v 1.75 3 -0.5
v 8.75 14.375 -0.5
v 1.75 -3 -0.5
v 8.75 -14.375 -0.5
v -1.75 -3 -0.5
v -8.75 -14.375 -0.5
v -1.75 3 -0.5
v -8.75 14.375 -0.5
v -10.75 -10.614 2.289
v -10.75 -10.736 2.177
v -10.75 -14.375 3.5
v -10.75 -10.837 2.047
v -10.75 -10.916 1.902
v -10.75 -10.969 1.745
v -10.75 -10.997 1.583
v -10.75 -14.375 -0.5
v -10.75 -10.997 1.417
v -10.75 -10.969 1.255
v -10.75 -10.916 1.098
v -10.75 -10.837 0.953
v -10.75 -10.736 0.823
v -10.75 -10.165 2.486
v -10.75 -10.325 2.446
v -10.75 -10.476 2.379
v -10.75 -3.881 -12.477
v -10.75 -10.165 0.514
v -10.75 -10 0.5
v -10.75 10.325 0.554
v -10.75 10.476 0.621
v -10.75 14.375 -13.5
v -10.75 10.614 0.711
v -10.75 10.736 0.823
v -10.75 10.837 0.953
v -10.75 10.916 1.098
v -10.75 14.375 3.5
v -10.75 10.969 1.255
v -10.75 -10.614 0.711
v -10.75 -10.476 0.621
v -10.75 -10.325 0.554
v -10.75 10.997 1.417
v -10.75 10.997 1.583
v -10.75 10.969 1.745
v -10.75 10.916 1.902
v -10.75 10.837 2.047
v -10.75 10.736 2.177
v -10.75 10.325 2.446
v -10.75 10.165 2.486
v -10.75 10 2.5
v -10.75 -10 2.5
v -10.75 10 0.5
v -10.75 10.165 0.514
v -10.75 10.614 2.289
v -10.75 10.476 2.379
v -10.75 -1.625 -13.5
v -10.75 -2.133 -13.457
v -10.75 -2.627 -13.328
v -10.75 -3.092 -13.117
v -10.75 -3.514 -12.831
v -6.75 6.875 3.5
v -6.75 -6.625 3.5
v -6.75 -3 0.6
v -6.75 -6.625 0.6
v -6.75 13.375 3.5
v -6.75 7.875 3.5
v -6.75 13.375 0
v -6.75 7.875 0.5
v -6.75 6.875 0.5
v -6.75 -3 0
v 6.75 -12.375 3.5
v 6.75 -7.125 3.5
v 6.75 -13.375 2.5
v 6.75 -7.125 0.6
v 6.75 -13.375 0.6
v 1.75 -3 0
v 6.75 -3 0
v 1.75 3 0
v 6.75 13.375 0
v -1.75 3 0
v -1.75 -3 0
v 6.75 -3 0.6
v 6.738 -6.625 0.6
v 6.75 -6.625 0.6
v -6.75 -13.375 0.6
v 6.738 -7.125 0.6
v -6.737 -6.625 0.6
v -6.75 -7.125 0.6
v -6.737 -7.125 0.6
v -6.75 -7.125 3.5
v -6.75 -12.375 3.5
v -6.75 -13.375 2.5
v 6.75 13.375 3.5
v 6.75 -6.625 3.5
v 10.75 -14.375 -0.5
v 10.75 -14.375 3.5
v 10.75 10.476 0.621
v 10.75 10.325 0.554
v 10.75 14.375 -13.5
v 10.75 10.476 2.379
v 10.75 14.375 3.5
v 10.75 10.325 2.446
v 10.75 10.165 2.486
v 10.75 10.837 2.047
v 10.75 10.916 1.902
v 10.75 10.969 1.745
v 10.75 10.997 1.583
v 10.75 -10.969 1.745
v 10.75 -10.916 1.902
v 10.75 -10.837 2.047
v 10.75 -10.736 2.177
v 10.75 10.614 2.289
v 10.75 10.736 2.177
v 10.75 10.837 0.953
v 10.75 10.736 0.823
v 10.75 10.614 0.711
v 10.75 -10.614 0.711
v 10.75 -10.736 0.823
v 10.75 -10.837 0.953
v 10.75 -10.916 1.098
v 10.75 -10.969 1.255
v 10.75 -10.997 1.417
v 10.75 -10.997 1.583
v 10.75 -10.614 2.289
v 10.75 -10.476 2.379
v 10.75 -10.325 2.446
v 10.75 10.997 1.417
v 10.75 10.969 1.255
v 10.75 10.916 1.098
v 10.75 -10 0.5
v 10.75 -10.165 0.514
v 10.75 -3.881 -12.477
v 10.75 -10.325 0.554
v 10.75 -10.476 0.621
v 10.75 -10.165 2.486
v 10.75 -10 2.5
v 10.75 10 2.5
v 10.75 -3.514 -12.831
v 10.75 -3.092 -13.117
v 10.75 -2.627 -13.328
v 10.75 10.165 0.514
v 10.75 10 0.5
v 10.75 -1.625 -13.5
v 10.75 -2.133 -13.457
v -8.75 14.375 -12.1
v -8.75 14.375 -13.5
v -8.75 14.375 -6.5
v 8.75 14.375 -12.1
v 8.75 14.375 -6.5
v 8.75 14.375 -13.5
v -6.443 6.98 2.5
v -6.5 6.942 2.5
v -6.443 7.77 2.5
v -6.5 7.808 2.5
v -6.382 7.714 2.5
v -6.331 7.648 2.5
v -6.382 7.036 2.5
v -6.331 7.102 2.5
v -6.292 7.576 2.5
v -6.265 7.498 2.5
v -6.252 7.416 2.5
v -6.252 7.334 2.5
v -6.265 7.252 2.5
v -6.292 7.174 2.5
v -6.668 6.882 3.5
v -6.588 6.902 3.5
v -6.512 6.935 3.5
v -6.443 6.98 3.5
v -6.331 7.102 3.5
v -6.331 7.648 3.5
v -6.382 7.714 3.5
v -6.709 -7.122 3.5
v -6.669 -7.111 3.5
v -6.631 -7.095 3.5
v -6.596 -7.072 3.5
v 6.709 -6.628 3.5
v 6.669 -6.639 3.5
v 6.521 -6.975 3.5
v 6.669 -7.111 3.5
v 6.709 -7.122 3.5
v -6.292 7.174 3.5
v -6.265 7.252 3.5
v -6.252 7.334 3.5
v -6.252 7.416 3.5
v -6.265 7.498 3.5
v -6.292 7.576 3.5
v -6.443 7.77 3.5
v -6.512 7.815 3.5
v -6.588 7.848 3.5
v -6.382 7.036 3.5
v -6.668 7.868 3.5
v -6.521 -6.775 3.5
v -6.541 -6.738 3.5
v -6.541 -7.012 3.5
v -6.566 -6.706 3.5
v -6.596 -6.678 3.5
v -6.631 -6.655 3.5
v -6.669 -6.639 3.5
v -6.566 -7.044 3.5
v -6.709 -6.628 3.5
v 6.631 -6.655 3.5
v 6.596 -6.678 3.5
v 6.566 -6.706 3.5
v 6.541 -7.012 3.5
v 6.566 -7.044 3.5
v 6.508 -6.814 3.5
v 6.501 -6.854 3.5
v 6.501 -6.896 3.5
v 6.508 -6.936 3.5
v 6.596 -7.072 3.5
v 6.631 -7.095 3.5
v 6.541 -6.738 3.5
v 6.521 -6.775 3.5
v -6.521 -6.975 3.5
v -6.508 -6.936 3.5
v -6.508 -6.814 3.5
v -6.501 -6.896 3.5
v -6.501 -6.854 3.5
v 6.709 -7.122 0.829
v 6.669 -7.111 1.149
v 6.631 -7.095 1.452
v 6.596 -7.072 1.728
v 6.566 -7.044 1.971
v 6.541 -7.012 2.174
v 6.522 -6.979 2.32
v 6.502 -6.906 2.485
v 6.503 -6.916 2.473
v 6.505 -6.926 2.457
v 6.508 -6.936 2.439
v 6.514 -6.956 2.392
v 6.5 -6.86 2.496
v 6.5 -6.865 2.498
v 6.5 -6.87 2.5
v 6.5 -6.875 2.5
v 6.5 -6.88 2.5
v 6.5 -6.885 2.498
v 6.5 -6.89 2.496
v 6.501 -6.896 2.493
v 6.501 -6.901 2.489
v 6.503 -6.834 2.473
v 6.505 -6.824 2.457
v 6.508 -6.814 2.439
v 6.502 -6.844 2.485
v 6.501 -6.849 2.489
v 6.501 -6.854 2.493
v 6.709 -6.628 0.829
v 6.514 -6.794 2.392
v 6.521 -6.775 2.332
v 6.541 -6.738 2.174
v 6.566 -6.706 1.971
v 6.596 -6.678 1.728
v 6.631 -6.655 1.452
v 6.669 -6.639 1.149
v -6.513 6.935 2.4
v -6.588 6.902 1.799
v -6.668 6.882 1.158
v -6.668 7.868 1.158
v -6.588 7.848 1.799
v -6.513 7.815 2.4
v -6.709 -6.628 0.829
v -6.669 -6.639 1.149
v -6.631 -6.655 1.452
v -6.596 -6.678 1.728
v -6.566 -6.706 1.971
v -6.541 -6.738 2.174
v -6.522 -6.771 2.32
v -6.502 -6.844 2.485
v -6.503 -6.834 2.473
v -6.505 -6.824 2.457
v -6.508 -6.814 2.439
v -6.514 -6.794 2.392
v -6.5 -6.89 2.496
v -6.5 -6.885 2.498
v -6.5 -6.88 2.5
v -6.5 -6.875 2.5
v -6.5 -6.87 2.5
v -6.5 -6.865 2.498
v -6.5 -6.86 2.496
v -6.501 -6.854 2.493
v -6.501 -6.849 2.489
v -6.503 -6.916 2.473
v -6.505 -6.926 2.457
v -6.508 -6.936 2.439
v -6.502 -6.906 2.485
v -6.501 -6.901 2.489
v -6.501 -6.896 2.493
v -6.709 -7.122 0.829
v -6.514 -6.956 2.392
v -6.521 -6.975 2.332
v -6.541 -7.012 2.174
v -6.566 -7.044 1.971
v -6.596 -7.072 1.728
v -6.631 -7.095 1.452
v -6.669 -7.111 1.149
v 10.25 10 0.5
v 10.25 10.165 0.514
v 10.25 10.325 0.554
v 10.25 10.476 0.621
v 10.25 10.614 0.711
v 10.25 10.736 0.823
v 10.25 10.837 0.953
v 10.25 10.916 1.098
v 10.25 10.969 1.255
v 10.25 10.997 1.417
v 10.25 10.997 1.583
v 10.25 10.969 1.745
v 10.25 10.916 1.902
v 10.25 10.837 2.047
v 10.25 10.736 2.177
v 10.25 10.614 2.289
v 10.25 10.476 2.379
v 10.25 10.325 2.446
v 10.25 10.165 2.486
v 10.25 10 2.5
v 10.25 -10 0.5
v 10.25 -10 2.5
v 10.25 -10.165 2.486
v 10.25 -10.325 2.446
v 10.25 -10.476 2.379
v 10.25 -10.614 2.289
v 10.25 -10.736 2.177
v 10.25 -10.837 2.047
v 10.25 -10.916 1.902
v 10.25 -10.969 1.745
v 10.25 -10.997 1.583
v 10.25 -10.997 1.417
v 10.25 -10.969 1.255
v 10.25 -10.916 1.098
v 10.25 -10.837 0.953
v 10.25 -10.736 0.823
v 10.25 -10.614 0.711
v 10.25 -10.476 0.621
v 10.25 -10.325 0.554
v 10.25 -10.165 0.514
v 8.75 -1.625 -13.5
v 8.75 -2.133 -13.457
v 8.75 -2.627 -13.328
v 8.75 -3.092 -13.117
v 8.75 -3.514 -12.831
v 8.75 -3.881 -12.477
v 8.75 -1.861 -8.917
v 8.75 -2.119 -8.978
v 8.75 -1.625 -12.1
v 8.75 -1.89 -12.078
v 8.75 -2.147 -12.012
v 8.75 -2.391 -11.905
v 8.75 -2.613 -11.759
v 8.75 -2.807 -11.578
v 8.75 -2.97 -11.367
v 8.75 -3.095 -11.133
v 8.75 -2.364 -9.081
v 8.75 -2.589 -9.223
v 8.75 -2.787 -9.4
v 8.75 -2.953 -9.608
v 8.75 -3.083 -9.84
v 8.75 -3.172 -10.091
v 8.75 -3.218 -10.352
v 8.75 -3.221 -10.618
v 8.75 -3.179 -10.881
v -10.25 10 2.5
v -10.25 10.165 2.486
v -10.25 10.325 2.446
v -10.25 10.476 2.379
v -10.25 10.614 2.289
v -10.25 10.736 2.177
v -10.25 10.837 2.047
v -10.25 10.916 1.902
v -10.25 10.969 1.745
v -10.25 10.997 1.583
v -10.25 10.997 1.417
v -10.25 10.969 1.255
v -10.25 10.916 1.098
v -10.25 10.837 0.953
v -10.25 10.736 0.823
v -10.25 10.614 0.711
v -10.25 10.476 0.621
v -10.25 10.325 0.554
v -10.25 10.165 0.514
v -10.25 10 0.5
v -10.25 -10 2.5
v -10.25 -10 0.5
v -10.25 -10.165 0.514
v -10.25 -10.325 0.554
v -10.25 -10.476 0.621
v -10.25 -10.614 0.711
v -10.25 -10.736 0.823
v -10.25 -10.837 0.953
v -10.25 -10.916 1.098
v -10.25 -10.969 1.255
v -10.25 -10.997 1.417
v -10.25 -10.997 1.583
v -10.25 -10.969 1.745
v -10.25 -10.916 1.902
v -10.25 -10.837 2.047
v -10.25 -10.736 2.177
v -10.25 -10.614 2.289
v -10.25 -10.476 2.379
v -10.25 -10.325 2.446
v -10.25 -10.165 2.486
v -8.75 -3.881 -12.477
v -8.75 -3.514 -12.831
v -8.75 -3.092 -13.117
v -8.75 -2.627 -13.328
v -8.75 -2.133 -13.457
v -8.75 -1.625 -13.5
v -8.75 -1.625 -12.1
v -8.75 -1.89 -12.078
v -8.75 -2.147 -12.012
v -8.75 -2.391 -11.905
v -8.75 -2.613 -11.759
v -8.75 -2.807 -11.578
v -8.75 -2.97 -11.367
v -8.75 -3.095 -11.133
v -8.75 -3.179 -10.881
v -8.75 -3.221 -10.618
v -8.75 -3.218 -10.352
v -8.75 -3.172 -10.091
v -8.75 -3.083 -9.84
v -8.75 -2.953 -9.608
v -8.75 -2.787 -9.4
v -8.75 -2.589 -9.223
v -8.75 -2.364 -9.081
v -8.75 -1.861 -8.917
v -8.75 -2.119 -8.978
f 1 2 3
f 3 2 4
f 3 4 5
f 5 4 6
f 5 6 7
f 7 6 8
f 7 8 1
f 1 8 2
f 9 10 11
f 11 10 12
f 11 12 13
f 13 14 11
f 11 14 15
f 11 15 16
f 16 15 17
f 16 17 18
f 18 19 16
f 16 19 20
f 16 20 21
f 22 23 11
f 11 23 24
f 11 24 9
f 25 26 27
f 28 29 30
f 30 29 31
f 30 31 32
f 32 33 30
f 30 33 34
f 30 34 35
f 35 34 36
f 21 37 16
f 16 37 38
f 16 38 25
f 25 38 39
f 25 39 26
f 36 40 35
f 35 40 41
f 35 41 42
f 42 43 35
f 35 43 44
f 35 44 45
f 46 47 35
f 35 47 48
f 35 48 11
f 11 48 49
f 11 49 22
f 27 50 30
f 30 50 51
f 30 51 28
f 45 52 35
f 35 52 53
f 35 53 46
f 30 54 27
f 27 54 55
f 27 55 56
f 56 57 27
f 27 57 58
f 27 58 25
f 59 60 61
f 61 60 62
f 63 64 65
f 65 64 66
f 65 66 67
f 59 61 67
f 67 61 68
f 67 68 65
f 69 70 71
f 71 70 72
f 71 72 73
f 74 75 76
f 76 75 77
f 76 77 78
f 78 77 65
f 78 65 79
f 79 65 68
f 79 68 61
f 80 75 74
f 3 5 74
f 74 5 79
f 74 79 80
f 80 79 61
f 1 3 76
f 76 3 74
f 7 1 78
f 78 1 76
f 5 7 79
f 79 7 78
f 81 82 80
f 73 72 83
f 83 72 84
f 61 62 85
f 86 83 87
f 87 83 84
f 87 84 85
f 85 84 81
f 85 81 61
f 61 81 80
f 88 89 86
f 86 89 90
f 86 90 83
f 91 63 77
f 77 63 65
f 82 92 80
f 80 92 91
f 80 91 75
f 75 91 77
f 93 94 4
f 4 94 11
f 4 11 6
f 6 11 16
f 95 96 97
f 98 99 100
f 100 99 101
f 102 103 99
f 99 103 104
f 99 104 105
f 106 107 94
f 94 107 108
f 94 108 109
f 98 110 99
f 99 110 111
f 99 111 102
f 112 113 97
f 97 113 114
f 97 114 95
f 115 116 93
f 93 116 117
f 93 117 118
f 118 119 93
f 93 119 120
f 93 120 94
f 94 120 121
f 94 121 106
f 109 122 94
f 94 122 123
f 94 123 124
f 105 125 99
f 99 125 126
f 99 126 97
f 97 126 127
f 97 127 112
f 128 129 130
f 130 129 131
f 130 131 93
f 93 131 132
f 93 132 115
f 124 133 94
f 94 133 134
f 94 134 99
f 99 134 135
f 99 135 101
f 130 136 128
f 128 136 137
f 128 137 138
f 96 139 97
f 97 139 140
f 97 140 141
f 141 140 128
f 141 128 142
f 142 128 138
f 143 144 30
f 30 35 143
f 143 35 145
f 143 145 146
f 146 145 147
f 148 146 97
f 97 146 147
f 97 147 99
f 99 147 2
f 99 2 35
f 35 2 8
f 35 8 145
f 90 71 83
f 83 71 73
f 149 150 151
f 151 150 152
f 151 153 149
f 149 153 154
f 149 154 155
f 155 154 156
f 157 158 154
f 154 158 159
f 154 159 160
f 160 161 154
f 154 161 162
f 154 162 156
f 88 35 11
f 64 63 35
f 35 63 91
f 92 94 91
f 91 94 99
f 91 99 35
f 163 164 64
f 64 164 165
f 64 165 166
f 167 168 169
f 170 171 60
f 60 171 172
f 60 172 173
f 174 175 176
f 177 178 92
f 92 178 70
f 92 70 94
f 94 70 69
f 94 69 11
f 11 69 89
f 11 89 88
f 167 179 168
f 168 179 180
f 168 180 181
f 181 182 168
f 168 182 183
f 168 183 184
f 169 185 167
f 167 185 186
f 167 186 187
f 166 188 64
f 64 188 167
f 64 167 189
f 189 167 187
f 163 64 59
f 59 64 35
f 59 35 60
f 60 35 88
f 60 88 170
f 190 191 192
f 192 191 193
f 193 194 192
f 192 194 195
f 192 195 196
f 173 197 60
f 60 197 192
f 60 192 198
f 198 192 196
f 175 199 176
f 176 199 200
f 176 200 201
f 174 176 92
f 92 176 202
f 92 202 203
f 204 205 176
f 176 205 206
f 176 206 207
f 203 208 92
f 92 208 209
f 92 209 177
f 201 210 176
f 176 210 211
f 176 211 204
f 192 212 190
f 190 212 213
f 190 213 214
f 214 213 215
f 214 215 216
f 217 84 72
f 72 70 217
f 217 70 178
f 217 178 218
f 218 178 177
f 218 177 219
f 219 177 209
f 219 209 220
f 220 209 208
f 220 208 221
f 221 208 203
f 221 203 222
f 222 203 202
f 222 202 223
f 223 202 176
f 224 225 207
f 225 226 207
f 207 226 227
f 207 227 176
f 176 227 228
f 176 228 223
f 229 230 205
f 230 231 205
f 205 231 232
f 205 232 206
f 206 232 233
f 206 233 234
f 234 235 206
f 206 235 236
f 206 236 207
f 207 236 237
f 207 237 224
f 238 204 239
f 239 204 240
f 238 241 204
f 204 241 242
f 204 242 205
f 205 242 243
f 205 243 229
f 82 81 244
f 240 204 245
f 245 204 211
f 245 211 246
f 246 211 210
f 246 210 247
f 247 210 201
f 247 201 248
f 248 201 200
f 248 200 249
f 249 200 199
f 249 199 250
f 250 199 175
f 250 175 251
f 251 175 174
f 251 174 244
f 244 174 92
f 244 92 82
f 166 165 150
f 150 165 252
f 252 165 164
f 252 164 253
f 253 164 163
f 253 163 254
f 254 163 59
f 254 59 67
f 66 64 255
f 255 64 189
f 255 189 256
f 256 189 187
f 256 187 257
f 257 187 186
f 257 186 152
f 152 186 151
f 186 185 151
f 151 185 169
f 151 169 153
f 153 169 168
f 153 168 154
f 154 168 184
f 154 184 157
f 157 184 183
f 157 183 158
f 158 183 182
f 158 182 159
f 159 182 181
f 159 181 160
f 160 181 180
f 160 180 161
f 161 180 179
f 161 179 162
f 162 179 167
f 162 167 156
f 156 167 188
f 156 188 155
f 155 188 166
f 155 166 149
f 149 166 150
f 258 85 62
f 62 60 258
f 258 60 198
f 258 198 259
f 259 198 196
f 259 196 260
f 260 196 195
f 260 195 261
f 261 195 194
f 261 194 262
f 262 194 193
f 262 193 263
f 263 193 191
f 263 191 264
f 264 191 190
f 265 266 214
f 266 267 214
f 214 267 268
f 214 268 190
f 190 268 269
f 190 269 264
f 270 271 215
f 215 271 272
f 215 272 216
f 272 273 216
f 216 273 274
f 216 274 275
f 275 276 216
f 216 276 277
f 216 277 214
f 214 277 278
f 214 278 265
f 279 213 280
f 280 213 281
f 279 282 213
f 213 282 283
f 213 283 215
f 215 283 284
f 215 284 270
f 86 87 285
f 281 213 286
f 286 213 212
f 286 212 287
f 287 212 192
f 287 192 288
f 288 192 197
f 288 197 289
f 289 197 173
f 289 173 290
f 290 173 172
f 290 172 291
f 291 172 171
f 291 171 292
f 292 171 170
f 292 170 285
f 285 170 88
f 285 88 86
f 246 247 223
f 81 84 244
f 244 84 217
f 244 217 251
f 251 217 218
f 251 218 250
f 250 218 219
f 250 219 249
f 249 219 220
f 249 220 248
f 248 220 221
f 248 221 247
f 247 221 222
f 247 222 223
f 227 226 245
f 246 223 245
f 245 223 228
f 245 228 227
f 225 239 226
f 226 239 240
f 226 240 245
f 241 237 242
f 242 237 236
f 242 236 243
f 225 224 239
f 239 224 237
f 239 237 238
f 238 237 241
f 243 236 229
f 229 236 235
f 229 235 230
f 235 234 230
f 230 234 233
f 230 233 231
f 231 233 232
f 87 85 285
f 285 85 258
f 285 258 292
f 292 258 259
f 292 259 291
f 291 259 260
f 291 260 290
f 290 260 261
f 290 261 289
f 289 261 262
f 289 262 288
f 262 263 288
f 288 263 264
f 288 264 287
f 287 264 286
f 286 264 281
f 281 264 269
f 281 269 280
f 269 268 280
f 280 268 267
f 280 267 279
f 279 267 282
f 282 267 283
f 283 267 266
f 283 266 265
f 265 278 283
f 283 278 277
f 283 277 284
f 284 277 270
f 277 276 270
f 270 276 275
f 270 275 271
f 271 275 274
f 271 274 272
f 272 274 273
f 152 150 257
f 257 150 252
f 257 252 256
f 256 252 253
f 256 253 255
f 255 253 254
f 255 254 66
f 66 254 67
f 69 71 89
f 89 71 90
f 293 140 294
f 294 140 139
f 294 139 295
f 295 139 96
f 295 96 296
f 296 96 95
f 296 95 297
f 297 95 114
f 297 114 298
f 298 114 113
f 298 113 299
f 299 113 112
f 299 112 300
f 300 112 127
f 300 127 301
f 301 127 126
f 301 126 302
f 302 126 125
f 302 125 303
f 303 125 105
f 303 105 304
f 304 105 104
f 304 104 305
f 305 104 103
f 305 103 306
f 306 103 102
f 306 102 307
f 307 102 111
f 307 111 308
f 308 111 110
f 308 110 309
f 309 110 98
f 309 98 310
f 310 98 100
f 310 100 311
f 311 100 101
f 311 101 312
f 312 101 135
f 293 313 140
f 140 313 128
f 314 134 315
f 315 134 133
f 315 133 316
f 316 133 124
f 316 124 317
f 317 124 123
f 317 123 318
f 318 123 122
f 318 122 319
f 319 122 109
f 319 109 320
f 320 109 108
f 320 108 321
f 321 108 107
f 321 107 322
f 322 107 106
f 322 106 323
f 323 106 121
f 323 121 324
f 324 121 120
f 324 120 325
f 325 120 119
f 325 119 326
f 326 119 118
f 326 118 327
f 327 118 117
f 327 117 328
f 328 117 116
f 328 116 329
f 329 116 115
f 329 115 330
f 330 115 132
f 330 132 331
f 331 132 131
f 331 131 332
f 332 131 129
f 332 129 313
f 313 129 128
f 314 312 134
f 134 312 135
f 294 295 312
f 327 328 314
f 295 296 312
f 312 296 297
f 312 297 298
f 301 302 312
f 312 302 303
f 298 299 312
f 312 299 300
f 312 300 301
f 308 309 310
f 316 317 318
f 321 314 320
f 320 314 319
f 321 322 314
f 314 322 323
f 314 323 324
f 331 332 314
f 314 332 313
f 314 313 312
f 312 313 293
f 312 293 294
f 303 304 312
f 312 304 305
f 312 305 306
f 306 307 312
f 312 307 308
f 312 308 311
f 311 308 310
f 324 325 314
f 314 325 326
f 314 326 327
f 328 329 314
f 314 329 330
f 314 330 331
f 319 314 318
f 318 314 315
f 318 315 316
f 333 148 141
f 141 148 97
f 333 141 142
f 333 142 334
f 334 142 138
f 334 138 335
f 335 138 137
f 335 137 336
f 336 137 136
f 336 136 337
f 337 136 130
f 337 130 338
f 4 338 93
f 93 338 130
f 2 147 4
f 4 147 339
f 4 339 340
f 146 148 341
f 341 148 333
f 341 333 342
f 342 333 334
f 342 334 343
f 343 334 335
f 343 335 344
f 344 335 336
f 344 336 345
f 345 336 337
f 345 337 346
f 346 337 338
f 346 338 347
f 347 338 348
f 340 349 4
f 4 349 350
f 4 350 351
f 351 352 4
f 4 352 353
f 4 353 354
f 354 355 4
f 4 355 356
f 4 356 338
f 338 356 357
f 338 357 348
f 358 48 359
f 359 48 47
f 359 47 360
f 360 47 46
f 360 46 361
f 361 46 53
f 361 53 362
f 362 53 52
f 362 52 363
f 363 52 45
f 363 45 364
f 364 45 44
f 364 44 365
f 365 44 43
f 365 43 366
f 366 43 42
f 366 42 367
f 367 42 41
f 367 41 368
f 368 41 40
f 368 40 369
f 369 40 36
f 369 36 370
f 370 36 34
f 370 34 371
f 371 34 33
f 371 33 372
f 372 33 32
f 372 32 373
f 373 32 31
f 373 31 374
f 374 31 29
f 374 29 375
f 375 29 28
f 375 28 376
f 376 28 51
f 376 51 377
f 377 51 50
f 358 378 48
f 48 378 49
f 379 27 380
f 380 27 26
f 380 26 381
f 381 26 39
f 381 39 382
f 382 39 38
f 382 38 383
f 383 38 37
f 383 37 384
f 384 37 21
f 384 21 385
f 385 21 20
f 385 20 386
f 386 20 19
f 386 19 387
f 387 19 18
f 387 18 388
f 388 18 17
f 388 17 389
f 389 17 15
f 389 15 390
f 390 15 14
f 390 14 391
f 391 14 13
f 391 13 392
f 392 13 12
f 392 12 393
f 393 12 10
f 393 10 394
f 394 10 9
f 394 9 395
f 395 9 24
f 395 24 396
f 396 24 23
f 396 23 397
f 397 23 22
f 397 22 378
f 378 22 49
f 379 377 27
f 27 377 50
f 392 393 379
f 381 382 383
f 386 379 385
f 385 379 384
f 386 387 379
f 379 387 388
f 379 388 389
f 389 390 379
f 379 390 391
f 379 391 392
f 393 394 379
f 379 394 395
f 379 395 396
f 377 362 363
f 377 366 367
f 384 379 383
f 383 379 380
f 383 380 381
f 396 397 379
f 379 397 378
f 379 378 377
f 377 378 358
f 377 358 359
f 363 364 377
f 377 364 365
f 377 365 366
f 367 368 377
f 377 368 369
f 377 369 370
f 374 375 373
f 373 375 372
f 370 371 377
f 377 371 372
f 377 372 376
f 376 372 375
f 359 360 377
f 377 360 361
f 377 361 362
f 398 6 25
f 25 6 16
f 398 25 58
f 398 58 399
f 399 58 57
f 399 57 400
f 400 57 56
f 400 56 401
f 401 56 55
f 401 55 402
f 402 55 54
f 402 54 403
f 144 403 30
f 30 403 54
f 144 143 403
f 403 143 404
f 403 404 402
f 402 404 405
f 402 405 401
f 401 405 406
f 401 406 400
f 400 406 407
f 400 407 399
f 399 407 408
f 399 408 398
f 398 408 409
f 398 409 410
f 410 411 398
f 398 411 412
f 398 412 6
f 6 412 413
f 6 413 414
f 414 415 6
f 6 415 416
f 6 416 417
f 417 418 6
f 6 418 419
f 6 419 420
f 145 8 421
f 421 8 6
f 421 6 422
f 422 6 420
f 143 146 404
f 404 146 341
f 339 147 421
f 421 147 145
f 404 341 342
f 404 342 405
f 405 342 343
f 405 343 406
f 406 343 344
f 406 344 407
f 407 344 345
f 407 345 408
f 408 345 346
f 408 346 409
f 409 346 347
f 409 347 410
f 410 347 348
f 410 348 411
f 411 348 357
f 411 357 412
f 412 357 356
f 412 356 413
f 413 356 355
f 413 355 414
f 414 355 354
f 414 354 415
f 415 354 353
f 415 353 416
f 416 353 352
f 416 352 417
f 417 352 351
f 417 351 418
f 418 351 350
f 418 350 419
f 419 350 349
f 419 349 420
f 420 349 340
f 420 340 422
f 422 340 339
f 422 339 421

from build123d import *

# Parameters (mm, degrees)
BOSS_EXTRUDE2_DEPTH = 0.5
BOSS_EXTRUDE3_DEPTH = 0.6
SKETCH4_W           = 21.5
SKETCH4_H           = 28.75
SKETCH4_W_2         = 13.5
SKETCH4_H_2         = 26.75
BOSS_EXTRUDE4_DEPTH = 3
SKETCH5_W           = 21.5
SKETCH5_H           = 28.75
BOSS_EXTRUDE5_DEPTH = 1
CHAMFER1_SIZE       = 0.25
CHAMFER1_SIZE_2     = 2
CHAMFER2_SIZE       = 2
CUT_EXTRUDE3_DEPTH  = 0.5
BOSS_EXTRUDE6_DEPTH = 2
BOSS_EXTRUDE8_START = -2
BOSS_EXTRUDE8_DEPTH = 17.5


with BuildPart() as part:
    # Sketch2 → Boss-Extrude2 (new body)
    with BuildSketch(Plane.XY):
        Polygon((-6.75, 13.375), (-6.75, -3), (-1.75, -3), (-1.75, 3), (1.75, 3), (1.75, -3), (6.75, -3), (6.75, 13.375), align=None)
        Polygon((-6.75, -3), (-6.75, -13.375), (6.75, -13.375), (6.75, -3), (1.75, -3), (-1.75, -3), align=None)
    extrude(amount=-BOSS_EXTRUDE2_DEPTH)

    # Sketch2<5> → Boss-Extrude3 (add)
    with BuildSketch(Plane.XY):
        Polygon((-6.75, -3), (-6.75, -13.375), (6.75, -13.375), (6.75, -3), (1.75, -3), (-1.75, -3), align=None)
    extrude(amount=BOSS_EXTRUDE3_DEPTH)

    # Sketch4 → Boss-Extrude4 (add)
    with BuildSketch(Plane(origin=(0, 0, -0.5), x_dir=(-1, 0, 0), z_dir=(0, 0, -1))):
        Rectangle(SKETCH4_W, SKETCH4_H)
        Rectangle(SKETCH4_W_2, SKETCH4_H_2, mode=Mode.SUBTRACT)
    extrude(amount=-BOSS_EXTRUDE4_DEPTH)

    # Sketch5 → Boss-Extrude5 (add)
    with BuildSketch(Plane.XY.offset(2.5)):
        Rectangle(SKETCH5_W, SKETCH5_H)
        with BuildLine():
            Line((-6.75, -7.125), (-6.75, -11.375))
            Line((-6.75, -11.375), (6.75, -11.375))
            Line((6.75, -11.375), (6.75, -7.125))
            ThreePointArc((6.75, -7.125), (6.5, -6.875), (6.75, -6.625))
            Line((6.75, -6.625), (6.75, 13.375))
            Line((6.75, 13.375), (-6.75, 13.375))
            Line((-6.75, 13.375), (-6.75, 7.875))
            ThreePointArc((-6.75, 7.875), (-6.25, 7.375), (-6.75, 6.875))
            Line((-6.75, 6.875), (-6.75, -6.625))
            ThreePointArc((-6.75, -6.625), (-6.5, -6.875), (-6.75, -7.125))
        make_face(mode=Mode.SUBTRACT)
    extrude(amount=BOSS_EXTRUDE5_DEPTH)

    # Chamfer1
    # the kernel refuses this chamfer: 2, 0.25 mm, written as the material it adds along each edge
    with BuildSketch(Plane(origin=(6.75, -1.426485236, 2.5), x_dir=(-0.9563912737708581, 0, 0.29208856782653414), z_dir=(0, -1, 0))) as chamfer1_piece_1_section:
        Polygon((CHAMFER1_SIZE * 0.956391273771, CHAMFER1_SIZE * 0.292088567827), (-CHAMFER1_SIZE_2 * 0.292088567827, CHAMFER1_SIZE_2 * 0.956391273771), (0, 0), align=None)
    chamfer1_piece_1 = extrude(amount=10.897029528, mode=Mode.PRIVATE)
    chamfer1_piece_1 = chamfer1_piece_1 & Plane(origin=(6.75, -6.875, 1.806445447), x_dir=(0, -1, 0), z_dir=(0, 0, -1)) * Cylinder(0.25, 30, mode=Mode.PRIVATE)
    add(chamfer1_piece_1)
    with BuildSketch(Plane(origin=(-6.75, -12.323514764, 2.5), x_dir=(-0.0047719296843702665, 0, -0.9999886142787264), z_dir=(0, 1, 0))) as chamfer1_piece_2_section:
        Polygon((CHAMFER1_SIZE_2 * 0.999988614279, -CHAMFER1_SIZE_2 * 0.00477192968437), (-CHAMFER1_SIZE * 0.00477192968437, -CHAMFER1_SIZE * 0.999988614279), (0, 0), align=None)
    chamfer1_piece_2 = extrude(amount=10.897029528, mode=Mode.PRIVATE)
    chamfer1_piece_2 = chamfer1_piece_2 & Plane(origin=(-6.75, -6.875, 1.806445447), x_dir=(0, 1, 0), z_dir=(0, 0, -1)) * Cylinder(0.25, 30, mode=Mode.PRIVATE)
    add(chamfer1_piece_2)
    with BuildSketch(Plane(origin=(-6.75, 1.676485236, 2.5), x_dir=(0.9563912737708581, 0, 0.29208856782653414), z_dir=(0, 1, 0))) as chamfer1_piece_3_section:
        Polygon((CHAMFER1_SIZE * 0.956391273771, CHAMFER1_SIZE * 0.292088567827), (-CHAMFER1_SIZE_2 * 0.292088567827, CHAMFER1_SIZE_2 * 0.956391273771), (0, 0), align=None)
    chamfer1_piece_3 = extrude(amount=11.397029528, mode=Mode.PRIVATE)
    chamfer1_piece_3 = chamfer1_piece_3 & Plane(origin=(-6.75, 7.375, 1.827435812), x_dir=(0, 1, 0), z_dir=(0, 0, -1)) * Cylinder(0.5, 31, mode=Mode.PRIVATE)
    add(chamfer1_piece_3)

    # Chamfer2
    # the kernel refuses this chamfer: 2 mm, written as the material it takes off along each edge
    with BuildSketch(Plane(origin=(-6.75, -11.375, 2.5), x_dir=(0, -0.9996219169112968, -0.02749587661058627), z_dir=(1, 0, 0))) as chamfer2_piece_1_section:
        Polygon((CHAMFER2_SIZE * 0.999621916911, -CHAMFER2_SIZE * 0.0274958766106), (-CHAMFER2_SIZE * 0.0274958766106, -CHAMFER2_SIZE * 0.999621916911), (0, 0), align=None)
    chamfer2_piece_1 = extrude(amount=13.5, mode=Mode.PRIVATE)
    chamfer2_piece_1 = split(chamfer2_piece_1, bisect_by=Plane(origin=(0, -13.375, 3.160808309), z_dir=(0, 1, 0)), keep=Keep.TOP, mode=Mode.PRIVATE)
    add(chamfer2_piece_1, mode=Mode.SUBTRACT)

    # Sketch7 → Cut-Extrude3 (cut)
    with BuildSketch(Plane(origin=(10.75, 0, 0), x_dir=(0, 0, -1), z_dir=(1, 0, 0))):
        with BuildLine():
            Line((-0.5, 10), (-0.5, -10))
            ThreePointArc((-0.5, -10), (-1.5, -11), (-2.5, -10))
            Line((-2.5, -10), (-2.5, 10))
            ThreePointArc((-2.5, 10), (-1.5, 11), (-0.5, 10))
        make_face()
    cut_extrude3 = extrude(amount=-CUT_EXTRUDE3_DEPTH, mode=Mode.SUBTRACT)

    # Sketch8 → Boss-Extrude6 (add)
    with BuildSketch(Plane(origin=(10.75, 0, 0), x_dir=(0, 0, -1), z_dir=(1, 0, 0))):
        with BuildLine():
            Line((0.5, 14.375), (0.5, -14.375))
            Line((0.5, -14.375), (12.476974843, -3.881450857))
            ThreePointArc((12.476974843, -3.881450857), (13.232299812, -2.863764601), (13.5, -1.625))
            Line((13.5, -1.625), (13.5, 14.375))
            Line((13.5, 14.375), (0.5, 14.375))
        make_face()
    boss_extrude6 = extrude(amount=-BOSS_EXTRUDE6_DEPTH)

    # Mirror1: Cut-Extrude3, Boss-Extrude6 across plane
    add(cut_extrude3.mirror(Plane(origin=(0, 0, 0), x_dir=(0, 0, 1), z_dir=(1, 0, 0))), mode=Mode.SUBTRACT)
    add(boss_extrude6.mirror(Plane(origin=(0, 0, 0), x_dir=(0, 0, 1), z_dir=(1, 0, 0))))

    # Sketch8<3> → Boss-Extrude8 (add)
    with BuildSketch(Plane(origin=(10.75, 0, 0), x_dir=(0, 0, -1), z_dir=(1, 0, 0)).offset(BOSS_EXTRUDE8_START)):
        with BuildLine():
            Line((12.1, 14.375), (6.5, 14.375))
            Line((6.5, 14.375), (8.917446812, -1.860638297))
            ThreePointArc((8.917446812, -1.860638297), (10.61814165, -3.220632336), (12.1, -1.625))
            Line((12.1, -1.625), (12.1, 14.375))
        make_face()
    extrude(amount=-BOSS_EXTRUDE8_DEPTH)


solid = part.part
